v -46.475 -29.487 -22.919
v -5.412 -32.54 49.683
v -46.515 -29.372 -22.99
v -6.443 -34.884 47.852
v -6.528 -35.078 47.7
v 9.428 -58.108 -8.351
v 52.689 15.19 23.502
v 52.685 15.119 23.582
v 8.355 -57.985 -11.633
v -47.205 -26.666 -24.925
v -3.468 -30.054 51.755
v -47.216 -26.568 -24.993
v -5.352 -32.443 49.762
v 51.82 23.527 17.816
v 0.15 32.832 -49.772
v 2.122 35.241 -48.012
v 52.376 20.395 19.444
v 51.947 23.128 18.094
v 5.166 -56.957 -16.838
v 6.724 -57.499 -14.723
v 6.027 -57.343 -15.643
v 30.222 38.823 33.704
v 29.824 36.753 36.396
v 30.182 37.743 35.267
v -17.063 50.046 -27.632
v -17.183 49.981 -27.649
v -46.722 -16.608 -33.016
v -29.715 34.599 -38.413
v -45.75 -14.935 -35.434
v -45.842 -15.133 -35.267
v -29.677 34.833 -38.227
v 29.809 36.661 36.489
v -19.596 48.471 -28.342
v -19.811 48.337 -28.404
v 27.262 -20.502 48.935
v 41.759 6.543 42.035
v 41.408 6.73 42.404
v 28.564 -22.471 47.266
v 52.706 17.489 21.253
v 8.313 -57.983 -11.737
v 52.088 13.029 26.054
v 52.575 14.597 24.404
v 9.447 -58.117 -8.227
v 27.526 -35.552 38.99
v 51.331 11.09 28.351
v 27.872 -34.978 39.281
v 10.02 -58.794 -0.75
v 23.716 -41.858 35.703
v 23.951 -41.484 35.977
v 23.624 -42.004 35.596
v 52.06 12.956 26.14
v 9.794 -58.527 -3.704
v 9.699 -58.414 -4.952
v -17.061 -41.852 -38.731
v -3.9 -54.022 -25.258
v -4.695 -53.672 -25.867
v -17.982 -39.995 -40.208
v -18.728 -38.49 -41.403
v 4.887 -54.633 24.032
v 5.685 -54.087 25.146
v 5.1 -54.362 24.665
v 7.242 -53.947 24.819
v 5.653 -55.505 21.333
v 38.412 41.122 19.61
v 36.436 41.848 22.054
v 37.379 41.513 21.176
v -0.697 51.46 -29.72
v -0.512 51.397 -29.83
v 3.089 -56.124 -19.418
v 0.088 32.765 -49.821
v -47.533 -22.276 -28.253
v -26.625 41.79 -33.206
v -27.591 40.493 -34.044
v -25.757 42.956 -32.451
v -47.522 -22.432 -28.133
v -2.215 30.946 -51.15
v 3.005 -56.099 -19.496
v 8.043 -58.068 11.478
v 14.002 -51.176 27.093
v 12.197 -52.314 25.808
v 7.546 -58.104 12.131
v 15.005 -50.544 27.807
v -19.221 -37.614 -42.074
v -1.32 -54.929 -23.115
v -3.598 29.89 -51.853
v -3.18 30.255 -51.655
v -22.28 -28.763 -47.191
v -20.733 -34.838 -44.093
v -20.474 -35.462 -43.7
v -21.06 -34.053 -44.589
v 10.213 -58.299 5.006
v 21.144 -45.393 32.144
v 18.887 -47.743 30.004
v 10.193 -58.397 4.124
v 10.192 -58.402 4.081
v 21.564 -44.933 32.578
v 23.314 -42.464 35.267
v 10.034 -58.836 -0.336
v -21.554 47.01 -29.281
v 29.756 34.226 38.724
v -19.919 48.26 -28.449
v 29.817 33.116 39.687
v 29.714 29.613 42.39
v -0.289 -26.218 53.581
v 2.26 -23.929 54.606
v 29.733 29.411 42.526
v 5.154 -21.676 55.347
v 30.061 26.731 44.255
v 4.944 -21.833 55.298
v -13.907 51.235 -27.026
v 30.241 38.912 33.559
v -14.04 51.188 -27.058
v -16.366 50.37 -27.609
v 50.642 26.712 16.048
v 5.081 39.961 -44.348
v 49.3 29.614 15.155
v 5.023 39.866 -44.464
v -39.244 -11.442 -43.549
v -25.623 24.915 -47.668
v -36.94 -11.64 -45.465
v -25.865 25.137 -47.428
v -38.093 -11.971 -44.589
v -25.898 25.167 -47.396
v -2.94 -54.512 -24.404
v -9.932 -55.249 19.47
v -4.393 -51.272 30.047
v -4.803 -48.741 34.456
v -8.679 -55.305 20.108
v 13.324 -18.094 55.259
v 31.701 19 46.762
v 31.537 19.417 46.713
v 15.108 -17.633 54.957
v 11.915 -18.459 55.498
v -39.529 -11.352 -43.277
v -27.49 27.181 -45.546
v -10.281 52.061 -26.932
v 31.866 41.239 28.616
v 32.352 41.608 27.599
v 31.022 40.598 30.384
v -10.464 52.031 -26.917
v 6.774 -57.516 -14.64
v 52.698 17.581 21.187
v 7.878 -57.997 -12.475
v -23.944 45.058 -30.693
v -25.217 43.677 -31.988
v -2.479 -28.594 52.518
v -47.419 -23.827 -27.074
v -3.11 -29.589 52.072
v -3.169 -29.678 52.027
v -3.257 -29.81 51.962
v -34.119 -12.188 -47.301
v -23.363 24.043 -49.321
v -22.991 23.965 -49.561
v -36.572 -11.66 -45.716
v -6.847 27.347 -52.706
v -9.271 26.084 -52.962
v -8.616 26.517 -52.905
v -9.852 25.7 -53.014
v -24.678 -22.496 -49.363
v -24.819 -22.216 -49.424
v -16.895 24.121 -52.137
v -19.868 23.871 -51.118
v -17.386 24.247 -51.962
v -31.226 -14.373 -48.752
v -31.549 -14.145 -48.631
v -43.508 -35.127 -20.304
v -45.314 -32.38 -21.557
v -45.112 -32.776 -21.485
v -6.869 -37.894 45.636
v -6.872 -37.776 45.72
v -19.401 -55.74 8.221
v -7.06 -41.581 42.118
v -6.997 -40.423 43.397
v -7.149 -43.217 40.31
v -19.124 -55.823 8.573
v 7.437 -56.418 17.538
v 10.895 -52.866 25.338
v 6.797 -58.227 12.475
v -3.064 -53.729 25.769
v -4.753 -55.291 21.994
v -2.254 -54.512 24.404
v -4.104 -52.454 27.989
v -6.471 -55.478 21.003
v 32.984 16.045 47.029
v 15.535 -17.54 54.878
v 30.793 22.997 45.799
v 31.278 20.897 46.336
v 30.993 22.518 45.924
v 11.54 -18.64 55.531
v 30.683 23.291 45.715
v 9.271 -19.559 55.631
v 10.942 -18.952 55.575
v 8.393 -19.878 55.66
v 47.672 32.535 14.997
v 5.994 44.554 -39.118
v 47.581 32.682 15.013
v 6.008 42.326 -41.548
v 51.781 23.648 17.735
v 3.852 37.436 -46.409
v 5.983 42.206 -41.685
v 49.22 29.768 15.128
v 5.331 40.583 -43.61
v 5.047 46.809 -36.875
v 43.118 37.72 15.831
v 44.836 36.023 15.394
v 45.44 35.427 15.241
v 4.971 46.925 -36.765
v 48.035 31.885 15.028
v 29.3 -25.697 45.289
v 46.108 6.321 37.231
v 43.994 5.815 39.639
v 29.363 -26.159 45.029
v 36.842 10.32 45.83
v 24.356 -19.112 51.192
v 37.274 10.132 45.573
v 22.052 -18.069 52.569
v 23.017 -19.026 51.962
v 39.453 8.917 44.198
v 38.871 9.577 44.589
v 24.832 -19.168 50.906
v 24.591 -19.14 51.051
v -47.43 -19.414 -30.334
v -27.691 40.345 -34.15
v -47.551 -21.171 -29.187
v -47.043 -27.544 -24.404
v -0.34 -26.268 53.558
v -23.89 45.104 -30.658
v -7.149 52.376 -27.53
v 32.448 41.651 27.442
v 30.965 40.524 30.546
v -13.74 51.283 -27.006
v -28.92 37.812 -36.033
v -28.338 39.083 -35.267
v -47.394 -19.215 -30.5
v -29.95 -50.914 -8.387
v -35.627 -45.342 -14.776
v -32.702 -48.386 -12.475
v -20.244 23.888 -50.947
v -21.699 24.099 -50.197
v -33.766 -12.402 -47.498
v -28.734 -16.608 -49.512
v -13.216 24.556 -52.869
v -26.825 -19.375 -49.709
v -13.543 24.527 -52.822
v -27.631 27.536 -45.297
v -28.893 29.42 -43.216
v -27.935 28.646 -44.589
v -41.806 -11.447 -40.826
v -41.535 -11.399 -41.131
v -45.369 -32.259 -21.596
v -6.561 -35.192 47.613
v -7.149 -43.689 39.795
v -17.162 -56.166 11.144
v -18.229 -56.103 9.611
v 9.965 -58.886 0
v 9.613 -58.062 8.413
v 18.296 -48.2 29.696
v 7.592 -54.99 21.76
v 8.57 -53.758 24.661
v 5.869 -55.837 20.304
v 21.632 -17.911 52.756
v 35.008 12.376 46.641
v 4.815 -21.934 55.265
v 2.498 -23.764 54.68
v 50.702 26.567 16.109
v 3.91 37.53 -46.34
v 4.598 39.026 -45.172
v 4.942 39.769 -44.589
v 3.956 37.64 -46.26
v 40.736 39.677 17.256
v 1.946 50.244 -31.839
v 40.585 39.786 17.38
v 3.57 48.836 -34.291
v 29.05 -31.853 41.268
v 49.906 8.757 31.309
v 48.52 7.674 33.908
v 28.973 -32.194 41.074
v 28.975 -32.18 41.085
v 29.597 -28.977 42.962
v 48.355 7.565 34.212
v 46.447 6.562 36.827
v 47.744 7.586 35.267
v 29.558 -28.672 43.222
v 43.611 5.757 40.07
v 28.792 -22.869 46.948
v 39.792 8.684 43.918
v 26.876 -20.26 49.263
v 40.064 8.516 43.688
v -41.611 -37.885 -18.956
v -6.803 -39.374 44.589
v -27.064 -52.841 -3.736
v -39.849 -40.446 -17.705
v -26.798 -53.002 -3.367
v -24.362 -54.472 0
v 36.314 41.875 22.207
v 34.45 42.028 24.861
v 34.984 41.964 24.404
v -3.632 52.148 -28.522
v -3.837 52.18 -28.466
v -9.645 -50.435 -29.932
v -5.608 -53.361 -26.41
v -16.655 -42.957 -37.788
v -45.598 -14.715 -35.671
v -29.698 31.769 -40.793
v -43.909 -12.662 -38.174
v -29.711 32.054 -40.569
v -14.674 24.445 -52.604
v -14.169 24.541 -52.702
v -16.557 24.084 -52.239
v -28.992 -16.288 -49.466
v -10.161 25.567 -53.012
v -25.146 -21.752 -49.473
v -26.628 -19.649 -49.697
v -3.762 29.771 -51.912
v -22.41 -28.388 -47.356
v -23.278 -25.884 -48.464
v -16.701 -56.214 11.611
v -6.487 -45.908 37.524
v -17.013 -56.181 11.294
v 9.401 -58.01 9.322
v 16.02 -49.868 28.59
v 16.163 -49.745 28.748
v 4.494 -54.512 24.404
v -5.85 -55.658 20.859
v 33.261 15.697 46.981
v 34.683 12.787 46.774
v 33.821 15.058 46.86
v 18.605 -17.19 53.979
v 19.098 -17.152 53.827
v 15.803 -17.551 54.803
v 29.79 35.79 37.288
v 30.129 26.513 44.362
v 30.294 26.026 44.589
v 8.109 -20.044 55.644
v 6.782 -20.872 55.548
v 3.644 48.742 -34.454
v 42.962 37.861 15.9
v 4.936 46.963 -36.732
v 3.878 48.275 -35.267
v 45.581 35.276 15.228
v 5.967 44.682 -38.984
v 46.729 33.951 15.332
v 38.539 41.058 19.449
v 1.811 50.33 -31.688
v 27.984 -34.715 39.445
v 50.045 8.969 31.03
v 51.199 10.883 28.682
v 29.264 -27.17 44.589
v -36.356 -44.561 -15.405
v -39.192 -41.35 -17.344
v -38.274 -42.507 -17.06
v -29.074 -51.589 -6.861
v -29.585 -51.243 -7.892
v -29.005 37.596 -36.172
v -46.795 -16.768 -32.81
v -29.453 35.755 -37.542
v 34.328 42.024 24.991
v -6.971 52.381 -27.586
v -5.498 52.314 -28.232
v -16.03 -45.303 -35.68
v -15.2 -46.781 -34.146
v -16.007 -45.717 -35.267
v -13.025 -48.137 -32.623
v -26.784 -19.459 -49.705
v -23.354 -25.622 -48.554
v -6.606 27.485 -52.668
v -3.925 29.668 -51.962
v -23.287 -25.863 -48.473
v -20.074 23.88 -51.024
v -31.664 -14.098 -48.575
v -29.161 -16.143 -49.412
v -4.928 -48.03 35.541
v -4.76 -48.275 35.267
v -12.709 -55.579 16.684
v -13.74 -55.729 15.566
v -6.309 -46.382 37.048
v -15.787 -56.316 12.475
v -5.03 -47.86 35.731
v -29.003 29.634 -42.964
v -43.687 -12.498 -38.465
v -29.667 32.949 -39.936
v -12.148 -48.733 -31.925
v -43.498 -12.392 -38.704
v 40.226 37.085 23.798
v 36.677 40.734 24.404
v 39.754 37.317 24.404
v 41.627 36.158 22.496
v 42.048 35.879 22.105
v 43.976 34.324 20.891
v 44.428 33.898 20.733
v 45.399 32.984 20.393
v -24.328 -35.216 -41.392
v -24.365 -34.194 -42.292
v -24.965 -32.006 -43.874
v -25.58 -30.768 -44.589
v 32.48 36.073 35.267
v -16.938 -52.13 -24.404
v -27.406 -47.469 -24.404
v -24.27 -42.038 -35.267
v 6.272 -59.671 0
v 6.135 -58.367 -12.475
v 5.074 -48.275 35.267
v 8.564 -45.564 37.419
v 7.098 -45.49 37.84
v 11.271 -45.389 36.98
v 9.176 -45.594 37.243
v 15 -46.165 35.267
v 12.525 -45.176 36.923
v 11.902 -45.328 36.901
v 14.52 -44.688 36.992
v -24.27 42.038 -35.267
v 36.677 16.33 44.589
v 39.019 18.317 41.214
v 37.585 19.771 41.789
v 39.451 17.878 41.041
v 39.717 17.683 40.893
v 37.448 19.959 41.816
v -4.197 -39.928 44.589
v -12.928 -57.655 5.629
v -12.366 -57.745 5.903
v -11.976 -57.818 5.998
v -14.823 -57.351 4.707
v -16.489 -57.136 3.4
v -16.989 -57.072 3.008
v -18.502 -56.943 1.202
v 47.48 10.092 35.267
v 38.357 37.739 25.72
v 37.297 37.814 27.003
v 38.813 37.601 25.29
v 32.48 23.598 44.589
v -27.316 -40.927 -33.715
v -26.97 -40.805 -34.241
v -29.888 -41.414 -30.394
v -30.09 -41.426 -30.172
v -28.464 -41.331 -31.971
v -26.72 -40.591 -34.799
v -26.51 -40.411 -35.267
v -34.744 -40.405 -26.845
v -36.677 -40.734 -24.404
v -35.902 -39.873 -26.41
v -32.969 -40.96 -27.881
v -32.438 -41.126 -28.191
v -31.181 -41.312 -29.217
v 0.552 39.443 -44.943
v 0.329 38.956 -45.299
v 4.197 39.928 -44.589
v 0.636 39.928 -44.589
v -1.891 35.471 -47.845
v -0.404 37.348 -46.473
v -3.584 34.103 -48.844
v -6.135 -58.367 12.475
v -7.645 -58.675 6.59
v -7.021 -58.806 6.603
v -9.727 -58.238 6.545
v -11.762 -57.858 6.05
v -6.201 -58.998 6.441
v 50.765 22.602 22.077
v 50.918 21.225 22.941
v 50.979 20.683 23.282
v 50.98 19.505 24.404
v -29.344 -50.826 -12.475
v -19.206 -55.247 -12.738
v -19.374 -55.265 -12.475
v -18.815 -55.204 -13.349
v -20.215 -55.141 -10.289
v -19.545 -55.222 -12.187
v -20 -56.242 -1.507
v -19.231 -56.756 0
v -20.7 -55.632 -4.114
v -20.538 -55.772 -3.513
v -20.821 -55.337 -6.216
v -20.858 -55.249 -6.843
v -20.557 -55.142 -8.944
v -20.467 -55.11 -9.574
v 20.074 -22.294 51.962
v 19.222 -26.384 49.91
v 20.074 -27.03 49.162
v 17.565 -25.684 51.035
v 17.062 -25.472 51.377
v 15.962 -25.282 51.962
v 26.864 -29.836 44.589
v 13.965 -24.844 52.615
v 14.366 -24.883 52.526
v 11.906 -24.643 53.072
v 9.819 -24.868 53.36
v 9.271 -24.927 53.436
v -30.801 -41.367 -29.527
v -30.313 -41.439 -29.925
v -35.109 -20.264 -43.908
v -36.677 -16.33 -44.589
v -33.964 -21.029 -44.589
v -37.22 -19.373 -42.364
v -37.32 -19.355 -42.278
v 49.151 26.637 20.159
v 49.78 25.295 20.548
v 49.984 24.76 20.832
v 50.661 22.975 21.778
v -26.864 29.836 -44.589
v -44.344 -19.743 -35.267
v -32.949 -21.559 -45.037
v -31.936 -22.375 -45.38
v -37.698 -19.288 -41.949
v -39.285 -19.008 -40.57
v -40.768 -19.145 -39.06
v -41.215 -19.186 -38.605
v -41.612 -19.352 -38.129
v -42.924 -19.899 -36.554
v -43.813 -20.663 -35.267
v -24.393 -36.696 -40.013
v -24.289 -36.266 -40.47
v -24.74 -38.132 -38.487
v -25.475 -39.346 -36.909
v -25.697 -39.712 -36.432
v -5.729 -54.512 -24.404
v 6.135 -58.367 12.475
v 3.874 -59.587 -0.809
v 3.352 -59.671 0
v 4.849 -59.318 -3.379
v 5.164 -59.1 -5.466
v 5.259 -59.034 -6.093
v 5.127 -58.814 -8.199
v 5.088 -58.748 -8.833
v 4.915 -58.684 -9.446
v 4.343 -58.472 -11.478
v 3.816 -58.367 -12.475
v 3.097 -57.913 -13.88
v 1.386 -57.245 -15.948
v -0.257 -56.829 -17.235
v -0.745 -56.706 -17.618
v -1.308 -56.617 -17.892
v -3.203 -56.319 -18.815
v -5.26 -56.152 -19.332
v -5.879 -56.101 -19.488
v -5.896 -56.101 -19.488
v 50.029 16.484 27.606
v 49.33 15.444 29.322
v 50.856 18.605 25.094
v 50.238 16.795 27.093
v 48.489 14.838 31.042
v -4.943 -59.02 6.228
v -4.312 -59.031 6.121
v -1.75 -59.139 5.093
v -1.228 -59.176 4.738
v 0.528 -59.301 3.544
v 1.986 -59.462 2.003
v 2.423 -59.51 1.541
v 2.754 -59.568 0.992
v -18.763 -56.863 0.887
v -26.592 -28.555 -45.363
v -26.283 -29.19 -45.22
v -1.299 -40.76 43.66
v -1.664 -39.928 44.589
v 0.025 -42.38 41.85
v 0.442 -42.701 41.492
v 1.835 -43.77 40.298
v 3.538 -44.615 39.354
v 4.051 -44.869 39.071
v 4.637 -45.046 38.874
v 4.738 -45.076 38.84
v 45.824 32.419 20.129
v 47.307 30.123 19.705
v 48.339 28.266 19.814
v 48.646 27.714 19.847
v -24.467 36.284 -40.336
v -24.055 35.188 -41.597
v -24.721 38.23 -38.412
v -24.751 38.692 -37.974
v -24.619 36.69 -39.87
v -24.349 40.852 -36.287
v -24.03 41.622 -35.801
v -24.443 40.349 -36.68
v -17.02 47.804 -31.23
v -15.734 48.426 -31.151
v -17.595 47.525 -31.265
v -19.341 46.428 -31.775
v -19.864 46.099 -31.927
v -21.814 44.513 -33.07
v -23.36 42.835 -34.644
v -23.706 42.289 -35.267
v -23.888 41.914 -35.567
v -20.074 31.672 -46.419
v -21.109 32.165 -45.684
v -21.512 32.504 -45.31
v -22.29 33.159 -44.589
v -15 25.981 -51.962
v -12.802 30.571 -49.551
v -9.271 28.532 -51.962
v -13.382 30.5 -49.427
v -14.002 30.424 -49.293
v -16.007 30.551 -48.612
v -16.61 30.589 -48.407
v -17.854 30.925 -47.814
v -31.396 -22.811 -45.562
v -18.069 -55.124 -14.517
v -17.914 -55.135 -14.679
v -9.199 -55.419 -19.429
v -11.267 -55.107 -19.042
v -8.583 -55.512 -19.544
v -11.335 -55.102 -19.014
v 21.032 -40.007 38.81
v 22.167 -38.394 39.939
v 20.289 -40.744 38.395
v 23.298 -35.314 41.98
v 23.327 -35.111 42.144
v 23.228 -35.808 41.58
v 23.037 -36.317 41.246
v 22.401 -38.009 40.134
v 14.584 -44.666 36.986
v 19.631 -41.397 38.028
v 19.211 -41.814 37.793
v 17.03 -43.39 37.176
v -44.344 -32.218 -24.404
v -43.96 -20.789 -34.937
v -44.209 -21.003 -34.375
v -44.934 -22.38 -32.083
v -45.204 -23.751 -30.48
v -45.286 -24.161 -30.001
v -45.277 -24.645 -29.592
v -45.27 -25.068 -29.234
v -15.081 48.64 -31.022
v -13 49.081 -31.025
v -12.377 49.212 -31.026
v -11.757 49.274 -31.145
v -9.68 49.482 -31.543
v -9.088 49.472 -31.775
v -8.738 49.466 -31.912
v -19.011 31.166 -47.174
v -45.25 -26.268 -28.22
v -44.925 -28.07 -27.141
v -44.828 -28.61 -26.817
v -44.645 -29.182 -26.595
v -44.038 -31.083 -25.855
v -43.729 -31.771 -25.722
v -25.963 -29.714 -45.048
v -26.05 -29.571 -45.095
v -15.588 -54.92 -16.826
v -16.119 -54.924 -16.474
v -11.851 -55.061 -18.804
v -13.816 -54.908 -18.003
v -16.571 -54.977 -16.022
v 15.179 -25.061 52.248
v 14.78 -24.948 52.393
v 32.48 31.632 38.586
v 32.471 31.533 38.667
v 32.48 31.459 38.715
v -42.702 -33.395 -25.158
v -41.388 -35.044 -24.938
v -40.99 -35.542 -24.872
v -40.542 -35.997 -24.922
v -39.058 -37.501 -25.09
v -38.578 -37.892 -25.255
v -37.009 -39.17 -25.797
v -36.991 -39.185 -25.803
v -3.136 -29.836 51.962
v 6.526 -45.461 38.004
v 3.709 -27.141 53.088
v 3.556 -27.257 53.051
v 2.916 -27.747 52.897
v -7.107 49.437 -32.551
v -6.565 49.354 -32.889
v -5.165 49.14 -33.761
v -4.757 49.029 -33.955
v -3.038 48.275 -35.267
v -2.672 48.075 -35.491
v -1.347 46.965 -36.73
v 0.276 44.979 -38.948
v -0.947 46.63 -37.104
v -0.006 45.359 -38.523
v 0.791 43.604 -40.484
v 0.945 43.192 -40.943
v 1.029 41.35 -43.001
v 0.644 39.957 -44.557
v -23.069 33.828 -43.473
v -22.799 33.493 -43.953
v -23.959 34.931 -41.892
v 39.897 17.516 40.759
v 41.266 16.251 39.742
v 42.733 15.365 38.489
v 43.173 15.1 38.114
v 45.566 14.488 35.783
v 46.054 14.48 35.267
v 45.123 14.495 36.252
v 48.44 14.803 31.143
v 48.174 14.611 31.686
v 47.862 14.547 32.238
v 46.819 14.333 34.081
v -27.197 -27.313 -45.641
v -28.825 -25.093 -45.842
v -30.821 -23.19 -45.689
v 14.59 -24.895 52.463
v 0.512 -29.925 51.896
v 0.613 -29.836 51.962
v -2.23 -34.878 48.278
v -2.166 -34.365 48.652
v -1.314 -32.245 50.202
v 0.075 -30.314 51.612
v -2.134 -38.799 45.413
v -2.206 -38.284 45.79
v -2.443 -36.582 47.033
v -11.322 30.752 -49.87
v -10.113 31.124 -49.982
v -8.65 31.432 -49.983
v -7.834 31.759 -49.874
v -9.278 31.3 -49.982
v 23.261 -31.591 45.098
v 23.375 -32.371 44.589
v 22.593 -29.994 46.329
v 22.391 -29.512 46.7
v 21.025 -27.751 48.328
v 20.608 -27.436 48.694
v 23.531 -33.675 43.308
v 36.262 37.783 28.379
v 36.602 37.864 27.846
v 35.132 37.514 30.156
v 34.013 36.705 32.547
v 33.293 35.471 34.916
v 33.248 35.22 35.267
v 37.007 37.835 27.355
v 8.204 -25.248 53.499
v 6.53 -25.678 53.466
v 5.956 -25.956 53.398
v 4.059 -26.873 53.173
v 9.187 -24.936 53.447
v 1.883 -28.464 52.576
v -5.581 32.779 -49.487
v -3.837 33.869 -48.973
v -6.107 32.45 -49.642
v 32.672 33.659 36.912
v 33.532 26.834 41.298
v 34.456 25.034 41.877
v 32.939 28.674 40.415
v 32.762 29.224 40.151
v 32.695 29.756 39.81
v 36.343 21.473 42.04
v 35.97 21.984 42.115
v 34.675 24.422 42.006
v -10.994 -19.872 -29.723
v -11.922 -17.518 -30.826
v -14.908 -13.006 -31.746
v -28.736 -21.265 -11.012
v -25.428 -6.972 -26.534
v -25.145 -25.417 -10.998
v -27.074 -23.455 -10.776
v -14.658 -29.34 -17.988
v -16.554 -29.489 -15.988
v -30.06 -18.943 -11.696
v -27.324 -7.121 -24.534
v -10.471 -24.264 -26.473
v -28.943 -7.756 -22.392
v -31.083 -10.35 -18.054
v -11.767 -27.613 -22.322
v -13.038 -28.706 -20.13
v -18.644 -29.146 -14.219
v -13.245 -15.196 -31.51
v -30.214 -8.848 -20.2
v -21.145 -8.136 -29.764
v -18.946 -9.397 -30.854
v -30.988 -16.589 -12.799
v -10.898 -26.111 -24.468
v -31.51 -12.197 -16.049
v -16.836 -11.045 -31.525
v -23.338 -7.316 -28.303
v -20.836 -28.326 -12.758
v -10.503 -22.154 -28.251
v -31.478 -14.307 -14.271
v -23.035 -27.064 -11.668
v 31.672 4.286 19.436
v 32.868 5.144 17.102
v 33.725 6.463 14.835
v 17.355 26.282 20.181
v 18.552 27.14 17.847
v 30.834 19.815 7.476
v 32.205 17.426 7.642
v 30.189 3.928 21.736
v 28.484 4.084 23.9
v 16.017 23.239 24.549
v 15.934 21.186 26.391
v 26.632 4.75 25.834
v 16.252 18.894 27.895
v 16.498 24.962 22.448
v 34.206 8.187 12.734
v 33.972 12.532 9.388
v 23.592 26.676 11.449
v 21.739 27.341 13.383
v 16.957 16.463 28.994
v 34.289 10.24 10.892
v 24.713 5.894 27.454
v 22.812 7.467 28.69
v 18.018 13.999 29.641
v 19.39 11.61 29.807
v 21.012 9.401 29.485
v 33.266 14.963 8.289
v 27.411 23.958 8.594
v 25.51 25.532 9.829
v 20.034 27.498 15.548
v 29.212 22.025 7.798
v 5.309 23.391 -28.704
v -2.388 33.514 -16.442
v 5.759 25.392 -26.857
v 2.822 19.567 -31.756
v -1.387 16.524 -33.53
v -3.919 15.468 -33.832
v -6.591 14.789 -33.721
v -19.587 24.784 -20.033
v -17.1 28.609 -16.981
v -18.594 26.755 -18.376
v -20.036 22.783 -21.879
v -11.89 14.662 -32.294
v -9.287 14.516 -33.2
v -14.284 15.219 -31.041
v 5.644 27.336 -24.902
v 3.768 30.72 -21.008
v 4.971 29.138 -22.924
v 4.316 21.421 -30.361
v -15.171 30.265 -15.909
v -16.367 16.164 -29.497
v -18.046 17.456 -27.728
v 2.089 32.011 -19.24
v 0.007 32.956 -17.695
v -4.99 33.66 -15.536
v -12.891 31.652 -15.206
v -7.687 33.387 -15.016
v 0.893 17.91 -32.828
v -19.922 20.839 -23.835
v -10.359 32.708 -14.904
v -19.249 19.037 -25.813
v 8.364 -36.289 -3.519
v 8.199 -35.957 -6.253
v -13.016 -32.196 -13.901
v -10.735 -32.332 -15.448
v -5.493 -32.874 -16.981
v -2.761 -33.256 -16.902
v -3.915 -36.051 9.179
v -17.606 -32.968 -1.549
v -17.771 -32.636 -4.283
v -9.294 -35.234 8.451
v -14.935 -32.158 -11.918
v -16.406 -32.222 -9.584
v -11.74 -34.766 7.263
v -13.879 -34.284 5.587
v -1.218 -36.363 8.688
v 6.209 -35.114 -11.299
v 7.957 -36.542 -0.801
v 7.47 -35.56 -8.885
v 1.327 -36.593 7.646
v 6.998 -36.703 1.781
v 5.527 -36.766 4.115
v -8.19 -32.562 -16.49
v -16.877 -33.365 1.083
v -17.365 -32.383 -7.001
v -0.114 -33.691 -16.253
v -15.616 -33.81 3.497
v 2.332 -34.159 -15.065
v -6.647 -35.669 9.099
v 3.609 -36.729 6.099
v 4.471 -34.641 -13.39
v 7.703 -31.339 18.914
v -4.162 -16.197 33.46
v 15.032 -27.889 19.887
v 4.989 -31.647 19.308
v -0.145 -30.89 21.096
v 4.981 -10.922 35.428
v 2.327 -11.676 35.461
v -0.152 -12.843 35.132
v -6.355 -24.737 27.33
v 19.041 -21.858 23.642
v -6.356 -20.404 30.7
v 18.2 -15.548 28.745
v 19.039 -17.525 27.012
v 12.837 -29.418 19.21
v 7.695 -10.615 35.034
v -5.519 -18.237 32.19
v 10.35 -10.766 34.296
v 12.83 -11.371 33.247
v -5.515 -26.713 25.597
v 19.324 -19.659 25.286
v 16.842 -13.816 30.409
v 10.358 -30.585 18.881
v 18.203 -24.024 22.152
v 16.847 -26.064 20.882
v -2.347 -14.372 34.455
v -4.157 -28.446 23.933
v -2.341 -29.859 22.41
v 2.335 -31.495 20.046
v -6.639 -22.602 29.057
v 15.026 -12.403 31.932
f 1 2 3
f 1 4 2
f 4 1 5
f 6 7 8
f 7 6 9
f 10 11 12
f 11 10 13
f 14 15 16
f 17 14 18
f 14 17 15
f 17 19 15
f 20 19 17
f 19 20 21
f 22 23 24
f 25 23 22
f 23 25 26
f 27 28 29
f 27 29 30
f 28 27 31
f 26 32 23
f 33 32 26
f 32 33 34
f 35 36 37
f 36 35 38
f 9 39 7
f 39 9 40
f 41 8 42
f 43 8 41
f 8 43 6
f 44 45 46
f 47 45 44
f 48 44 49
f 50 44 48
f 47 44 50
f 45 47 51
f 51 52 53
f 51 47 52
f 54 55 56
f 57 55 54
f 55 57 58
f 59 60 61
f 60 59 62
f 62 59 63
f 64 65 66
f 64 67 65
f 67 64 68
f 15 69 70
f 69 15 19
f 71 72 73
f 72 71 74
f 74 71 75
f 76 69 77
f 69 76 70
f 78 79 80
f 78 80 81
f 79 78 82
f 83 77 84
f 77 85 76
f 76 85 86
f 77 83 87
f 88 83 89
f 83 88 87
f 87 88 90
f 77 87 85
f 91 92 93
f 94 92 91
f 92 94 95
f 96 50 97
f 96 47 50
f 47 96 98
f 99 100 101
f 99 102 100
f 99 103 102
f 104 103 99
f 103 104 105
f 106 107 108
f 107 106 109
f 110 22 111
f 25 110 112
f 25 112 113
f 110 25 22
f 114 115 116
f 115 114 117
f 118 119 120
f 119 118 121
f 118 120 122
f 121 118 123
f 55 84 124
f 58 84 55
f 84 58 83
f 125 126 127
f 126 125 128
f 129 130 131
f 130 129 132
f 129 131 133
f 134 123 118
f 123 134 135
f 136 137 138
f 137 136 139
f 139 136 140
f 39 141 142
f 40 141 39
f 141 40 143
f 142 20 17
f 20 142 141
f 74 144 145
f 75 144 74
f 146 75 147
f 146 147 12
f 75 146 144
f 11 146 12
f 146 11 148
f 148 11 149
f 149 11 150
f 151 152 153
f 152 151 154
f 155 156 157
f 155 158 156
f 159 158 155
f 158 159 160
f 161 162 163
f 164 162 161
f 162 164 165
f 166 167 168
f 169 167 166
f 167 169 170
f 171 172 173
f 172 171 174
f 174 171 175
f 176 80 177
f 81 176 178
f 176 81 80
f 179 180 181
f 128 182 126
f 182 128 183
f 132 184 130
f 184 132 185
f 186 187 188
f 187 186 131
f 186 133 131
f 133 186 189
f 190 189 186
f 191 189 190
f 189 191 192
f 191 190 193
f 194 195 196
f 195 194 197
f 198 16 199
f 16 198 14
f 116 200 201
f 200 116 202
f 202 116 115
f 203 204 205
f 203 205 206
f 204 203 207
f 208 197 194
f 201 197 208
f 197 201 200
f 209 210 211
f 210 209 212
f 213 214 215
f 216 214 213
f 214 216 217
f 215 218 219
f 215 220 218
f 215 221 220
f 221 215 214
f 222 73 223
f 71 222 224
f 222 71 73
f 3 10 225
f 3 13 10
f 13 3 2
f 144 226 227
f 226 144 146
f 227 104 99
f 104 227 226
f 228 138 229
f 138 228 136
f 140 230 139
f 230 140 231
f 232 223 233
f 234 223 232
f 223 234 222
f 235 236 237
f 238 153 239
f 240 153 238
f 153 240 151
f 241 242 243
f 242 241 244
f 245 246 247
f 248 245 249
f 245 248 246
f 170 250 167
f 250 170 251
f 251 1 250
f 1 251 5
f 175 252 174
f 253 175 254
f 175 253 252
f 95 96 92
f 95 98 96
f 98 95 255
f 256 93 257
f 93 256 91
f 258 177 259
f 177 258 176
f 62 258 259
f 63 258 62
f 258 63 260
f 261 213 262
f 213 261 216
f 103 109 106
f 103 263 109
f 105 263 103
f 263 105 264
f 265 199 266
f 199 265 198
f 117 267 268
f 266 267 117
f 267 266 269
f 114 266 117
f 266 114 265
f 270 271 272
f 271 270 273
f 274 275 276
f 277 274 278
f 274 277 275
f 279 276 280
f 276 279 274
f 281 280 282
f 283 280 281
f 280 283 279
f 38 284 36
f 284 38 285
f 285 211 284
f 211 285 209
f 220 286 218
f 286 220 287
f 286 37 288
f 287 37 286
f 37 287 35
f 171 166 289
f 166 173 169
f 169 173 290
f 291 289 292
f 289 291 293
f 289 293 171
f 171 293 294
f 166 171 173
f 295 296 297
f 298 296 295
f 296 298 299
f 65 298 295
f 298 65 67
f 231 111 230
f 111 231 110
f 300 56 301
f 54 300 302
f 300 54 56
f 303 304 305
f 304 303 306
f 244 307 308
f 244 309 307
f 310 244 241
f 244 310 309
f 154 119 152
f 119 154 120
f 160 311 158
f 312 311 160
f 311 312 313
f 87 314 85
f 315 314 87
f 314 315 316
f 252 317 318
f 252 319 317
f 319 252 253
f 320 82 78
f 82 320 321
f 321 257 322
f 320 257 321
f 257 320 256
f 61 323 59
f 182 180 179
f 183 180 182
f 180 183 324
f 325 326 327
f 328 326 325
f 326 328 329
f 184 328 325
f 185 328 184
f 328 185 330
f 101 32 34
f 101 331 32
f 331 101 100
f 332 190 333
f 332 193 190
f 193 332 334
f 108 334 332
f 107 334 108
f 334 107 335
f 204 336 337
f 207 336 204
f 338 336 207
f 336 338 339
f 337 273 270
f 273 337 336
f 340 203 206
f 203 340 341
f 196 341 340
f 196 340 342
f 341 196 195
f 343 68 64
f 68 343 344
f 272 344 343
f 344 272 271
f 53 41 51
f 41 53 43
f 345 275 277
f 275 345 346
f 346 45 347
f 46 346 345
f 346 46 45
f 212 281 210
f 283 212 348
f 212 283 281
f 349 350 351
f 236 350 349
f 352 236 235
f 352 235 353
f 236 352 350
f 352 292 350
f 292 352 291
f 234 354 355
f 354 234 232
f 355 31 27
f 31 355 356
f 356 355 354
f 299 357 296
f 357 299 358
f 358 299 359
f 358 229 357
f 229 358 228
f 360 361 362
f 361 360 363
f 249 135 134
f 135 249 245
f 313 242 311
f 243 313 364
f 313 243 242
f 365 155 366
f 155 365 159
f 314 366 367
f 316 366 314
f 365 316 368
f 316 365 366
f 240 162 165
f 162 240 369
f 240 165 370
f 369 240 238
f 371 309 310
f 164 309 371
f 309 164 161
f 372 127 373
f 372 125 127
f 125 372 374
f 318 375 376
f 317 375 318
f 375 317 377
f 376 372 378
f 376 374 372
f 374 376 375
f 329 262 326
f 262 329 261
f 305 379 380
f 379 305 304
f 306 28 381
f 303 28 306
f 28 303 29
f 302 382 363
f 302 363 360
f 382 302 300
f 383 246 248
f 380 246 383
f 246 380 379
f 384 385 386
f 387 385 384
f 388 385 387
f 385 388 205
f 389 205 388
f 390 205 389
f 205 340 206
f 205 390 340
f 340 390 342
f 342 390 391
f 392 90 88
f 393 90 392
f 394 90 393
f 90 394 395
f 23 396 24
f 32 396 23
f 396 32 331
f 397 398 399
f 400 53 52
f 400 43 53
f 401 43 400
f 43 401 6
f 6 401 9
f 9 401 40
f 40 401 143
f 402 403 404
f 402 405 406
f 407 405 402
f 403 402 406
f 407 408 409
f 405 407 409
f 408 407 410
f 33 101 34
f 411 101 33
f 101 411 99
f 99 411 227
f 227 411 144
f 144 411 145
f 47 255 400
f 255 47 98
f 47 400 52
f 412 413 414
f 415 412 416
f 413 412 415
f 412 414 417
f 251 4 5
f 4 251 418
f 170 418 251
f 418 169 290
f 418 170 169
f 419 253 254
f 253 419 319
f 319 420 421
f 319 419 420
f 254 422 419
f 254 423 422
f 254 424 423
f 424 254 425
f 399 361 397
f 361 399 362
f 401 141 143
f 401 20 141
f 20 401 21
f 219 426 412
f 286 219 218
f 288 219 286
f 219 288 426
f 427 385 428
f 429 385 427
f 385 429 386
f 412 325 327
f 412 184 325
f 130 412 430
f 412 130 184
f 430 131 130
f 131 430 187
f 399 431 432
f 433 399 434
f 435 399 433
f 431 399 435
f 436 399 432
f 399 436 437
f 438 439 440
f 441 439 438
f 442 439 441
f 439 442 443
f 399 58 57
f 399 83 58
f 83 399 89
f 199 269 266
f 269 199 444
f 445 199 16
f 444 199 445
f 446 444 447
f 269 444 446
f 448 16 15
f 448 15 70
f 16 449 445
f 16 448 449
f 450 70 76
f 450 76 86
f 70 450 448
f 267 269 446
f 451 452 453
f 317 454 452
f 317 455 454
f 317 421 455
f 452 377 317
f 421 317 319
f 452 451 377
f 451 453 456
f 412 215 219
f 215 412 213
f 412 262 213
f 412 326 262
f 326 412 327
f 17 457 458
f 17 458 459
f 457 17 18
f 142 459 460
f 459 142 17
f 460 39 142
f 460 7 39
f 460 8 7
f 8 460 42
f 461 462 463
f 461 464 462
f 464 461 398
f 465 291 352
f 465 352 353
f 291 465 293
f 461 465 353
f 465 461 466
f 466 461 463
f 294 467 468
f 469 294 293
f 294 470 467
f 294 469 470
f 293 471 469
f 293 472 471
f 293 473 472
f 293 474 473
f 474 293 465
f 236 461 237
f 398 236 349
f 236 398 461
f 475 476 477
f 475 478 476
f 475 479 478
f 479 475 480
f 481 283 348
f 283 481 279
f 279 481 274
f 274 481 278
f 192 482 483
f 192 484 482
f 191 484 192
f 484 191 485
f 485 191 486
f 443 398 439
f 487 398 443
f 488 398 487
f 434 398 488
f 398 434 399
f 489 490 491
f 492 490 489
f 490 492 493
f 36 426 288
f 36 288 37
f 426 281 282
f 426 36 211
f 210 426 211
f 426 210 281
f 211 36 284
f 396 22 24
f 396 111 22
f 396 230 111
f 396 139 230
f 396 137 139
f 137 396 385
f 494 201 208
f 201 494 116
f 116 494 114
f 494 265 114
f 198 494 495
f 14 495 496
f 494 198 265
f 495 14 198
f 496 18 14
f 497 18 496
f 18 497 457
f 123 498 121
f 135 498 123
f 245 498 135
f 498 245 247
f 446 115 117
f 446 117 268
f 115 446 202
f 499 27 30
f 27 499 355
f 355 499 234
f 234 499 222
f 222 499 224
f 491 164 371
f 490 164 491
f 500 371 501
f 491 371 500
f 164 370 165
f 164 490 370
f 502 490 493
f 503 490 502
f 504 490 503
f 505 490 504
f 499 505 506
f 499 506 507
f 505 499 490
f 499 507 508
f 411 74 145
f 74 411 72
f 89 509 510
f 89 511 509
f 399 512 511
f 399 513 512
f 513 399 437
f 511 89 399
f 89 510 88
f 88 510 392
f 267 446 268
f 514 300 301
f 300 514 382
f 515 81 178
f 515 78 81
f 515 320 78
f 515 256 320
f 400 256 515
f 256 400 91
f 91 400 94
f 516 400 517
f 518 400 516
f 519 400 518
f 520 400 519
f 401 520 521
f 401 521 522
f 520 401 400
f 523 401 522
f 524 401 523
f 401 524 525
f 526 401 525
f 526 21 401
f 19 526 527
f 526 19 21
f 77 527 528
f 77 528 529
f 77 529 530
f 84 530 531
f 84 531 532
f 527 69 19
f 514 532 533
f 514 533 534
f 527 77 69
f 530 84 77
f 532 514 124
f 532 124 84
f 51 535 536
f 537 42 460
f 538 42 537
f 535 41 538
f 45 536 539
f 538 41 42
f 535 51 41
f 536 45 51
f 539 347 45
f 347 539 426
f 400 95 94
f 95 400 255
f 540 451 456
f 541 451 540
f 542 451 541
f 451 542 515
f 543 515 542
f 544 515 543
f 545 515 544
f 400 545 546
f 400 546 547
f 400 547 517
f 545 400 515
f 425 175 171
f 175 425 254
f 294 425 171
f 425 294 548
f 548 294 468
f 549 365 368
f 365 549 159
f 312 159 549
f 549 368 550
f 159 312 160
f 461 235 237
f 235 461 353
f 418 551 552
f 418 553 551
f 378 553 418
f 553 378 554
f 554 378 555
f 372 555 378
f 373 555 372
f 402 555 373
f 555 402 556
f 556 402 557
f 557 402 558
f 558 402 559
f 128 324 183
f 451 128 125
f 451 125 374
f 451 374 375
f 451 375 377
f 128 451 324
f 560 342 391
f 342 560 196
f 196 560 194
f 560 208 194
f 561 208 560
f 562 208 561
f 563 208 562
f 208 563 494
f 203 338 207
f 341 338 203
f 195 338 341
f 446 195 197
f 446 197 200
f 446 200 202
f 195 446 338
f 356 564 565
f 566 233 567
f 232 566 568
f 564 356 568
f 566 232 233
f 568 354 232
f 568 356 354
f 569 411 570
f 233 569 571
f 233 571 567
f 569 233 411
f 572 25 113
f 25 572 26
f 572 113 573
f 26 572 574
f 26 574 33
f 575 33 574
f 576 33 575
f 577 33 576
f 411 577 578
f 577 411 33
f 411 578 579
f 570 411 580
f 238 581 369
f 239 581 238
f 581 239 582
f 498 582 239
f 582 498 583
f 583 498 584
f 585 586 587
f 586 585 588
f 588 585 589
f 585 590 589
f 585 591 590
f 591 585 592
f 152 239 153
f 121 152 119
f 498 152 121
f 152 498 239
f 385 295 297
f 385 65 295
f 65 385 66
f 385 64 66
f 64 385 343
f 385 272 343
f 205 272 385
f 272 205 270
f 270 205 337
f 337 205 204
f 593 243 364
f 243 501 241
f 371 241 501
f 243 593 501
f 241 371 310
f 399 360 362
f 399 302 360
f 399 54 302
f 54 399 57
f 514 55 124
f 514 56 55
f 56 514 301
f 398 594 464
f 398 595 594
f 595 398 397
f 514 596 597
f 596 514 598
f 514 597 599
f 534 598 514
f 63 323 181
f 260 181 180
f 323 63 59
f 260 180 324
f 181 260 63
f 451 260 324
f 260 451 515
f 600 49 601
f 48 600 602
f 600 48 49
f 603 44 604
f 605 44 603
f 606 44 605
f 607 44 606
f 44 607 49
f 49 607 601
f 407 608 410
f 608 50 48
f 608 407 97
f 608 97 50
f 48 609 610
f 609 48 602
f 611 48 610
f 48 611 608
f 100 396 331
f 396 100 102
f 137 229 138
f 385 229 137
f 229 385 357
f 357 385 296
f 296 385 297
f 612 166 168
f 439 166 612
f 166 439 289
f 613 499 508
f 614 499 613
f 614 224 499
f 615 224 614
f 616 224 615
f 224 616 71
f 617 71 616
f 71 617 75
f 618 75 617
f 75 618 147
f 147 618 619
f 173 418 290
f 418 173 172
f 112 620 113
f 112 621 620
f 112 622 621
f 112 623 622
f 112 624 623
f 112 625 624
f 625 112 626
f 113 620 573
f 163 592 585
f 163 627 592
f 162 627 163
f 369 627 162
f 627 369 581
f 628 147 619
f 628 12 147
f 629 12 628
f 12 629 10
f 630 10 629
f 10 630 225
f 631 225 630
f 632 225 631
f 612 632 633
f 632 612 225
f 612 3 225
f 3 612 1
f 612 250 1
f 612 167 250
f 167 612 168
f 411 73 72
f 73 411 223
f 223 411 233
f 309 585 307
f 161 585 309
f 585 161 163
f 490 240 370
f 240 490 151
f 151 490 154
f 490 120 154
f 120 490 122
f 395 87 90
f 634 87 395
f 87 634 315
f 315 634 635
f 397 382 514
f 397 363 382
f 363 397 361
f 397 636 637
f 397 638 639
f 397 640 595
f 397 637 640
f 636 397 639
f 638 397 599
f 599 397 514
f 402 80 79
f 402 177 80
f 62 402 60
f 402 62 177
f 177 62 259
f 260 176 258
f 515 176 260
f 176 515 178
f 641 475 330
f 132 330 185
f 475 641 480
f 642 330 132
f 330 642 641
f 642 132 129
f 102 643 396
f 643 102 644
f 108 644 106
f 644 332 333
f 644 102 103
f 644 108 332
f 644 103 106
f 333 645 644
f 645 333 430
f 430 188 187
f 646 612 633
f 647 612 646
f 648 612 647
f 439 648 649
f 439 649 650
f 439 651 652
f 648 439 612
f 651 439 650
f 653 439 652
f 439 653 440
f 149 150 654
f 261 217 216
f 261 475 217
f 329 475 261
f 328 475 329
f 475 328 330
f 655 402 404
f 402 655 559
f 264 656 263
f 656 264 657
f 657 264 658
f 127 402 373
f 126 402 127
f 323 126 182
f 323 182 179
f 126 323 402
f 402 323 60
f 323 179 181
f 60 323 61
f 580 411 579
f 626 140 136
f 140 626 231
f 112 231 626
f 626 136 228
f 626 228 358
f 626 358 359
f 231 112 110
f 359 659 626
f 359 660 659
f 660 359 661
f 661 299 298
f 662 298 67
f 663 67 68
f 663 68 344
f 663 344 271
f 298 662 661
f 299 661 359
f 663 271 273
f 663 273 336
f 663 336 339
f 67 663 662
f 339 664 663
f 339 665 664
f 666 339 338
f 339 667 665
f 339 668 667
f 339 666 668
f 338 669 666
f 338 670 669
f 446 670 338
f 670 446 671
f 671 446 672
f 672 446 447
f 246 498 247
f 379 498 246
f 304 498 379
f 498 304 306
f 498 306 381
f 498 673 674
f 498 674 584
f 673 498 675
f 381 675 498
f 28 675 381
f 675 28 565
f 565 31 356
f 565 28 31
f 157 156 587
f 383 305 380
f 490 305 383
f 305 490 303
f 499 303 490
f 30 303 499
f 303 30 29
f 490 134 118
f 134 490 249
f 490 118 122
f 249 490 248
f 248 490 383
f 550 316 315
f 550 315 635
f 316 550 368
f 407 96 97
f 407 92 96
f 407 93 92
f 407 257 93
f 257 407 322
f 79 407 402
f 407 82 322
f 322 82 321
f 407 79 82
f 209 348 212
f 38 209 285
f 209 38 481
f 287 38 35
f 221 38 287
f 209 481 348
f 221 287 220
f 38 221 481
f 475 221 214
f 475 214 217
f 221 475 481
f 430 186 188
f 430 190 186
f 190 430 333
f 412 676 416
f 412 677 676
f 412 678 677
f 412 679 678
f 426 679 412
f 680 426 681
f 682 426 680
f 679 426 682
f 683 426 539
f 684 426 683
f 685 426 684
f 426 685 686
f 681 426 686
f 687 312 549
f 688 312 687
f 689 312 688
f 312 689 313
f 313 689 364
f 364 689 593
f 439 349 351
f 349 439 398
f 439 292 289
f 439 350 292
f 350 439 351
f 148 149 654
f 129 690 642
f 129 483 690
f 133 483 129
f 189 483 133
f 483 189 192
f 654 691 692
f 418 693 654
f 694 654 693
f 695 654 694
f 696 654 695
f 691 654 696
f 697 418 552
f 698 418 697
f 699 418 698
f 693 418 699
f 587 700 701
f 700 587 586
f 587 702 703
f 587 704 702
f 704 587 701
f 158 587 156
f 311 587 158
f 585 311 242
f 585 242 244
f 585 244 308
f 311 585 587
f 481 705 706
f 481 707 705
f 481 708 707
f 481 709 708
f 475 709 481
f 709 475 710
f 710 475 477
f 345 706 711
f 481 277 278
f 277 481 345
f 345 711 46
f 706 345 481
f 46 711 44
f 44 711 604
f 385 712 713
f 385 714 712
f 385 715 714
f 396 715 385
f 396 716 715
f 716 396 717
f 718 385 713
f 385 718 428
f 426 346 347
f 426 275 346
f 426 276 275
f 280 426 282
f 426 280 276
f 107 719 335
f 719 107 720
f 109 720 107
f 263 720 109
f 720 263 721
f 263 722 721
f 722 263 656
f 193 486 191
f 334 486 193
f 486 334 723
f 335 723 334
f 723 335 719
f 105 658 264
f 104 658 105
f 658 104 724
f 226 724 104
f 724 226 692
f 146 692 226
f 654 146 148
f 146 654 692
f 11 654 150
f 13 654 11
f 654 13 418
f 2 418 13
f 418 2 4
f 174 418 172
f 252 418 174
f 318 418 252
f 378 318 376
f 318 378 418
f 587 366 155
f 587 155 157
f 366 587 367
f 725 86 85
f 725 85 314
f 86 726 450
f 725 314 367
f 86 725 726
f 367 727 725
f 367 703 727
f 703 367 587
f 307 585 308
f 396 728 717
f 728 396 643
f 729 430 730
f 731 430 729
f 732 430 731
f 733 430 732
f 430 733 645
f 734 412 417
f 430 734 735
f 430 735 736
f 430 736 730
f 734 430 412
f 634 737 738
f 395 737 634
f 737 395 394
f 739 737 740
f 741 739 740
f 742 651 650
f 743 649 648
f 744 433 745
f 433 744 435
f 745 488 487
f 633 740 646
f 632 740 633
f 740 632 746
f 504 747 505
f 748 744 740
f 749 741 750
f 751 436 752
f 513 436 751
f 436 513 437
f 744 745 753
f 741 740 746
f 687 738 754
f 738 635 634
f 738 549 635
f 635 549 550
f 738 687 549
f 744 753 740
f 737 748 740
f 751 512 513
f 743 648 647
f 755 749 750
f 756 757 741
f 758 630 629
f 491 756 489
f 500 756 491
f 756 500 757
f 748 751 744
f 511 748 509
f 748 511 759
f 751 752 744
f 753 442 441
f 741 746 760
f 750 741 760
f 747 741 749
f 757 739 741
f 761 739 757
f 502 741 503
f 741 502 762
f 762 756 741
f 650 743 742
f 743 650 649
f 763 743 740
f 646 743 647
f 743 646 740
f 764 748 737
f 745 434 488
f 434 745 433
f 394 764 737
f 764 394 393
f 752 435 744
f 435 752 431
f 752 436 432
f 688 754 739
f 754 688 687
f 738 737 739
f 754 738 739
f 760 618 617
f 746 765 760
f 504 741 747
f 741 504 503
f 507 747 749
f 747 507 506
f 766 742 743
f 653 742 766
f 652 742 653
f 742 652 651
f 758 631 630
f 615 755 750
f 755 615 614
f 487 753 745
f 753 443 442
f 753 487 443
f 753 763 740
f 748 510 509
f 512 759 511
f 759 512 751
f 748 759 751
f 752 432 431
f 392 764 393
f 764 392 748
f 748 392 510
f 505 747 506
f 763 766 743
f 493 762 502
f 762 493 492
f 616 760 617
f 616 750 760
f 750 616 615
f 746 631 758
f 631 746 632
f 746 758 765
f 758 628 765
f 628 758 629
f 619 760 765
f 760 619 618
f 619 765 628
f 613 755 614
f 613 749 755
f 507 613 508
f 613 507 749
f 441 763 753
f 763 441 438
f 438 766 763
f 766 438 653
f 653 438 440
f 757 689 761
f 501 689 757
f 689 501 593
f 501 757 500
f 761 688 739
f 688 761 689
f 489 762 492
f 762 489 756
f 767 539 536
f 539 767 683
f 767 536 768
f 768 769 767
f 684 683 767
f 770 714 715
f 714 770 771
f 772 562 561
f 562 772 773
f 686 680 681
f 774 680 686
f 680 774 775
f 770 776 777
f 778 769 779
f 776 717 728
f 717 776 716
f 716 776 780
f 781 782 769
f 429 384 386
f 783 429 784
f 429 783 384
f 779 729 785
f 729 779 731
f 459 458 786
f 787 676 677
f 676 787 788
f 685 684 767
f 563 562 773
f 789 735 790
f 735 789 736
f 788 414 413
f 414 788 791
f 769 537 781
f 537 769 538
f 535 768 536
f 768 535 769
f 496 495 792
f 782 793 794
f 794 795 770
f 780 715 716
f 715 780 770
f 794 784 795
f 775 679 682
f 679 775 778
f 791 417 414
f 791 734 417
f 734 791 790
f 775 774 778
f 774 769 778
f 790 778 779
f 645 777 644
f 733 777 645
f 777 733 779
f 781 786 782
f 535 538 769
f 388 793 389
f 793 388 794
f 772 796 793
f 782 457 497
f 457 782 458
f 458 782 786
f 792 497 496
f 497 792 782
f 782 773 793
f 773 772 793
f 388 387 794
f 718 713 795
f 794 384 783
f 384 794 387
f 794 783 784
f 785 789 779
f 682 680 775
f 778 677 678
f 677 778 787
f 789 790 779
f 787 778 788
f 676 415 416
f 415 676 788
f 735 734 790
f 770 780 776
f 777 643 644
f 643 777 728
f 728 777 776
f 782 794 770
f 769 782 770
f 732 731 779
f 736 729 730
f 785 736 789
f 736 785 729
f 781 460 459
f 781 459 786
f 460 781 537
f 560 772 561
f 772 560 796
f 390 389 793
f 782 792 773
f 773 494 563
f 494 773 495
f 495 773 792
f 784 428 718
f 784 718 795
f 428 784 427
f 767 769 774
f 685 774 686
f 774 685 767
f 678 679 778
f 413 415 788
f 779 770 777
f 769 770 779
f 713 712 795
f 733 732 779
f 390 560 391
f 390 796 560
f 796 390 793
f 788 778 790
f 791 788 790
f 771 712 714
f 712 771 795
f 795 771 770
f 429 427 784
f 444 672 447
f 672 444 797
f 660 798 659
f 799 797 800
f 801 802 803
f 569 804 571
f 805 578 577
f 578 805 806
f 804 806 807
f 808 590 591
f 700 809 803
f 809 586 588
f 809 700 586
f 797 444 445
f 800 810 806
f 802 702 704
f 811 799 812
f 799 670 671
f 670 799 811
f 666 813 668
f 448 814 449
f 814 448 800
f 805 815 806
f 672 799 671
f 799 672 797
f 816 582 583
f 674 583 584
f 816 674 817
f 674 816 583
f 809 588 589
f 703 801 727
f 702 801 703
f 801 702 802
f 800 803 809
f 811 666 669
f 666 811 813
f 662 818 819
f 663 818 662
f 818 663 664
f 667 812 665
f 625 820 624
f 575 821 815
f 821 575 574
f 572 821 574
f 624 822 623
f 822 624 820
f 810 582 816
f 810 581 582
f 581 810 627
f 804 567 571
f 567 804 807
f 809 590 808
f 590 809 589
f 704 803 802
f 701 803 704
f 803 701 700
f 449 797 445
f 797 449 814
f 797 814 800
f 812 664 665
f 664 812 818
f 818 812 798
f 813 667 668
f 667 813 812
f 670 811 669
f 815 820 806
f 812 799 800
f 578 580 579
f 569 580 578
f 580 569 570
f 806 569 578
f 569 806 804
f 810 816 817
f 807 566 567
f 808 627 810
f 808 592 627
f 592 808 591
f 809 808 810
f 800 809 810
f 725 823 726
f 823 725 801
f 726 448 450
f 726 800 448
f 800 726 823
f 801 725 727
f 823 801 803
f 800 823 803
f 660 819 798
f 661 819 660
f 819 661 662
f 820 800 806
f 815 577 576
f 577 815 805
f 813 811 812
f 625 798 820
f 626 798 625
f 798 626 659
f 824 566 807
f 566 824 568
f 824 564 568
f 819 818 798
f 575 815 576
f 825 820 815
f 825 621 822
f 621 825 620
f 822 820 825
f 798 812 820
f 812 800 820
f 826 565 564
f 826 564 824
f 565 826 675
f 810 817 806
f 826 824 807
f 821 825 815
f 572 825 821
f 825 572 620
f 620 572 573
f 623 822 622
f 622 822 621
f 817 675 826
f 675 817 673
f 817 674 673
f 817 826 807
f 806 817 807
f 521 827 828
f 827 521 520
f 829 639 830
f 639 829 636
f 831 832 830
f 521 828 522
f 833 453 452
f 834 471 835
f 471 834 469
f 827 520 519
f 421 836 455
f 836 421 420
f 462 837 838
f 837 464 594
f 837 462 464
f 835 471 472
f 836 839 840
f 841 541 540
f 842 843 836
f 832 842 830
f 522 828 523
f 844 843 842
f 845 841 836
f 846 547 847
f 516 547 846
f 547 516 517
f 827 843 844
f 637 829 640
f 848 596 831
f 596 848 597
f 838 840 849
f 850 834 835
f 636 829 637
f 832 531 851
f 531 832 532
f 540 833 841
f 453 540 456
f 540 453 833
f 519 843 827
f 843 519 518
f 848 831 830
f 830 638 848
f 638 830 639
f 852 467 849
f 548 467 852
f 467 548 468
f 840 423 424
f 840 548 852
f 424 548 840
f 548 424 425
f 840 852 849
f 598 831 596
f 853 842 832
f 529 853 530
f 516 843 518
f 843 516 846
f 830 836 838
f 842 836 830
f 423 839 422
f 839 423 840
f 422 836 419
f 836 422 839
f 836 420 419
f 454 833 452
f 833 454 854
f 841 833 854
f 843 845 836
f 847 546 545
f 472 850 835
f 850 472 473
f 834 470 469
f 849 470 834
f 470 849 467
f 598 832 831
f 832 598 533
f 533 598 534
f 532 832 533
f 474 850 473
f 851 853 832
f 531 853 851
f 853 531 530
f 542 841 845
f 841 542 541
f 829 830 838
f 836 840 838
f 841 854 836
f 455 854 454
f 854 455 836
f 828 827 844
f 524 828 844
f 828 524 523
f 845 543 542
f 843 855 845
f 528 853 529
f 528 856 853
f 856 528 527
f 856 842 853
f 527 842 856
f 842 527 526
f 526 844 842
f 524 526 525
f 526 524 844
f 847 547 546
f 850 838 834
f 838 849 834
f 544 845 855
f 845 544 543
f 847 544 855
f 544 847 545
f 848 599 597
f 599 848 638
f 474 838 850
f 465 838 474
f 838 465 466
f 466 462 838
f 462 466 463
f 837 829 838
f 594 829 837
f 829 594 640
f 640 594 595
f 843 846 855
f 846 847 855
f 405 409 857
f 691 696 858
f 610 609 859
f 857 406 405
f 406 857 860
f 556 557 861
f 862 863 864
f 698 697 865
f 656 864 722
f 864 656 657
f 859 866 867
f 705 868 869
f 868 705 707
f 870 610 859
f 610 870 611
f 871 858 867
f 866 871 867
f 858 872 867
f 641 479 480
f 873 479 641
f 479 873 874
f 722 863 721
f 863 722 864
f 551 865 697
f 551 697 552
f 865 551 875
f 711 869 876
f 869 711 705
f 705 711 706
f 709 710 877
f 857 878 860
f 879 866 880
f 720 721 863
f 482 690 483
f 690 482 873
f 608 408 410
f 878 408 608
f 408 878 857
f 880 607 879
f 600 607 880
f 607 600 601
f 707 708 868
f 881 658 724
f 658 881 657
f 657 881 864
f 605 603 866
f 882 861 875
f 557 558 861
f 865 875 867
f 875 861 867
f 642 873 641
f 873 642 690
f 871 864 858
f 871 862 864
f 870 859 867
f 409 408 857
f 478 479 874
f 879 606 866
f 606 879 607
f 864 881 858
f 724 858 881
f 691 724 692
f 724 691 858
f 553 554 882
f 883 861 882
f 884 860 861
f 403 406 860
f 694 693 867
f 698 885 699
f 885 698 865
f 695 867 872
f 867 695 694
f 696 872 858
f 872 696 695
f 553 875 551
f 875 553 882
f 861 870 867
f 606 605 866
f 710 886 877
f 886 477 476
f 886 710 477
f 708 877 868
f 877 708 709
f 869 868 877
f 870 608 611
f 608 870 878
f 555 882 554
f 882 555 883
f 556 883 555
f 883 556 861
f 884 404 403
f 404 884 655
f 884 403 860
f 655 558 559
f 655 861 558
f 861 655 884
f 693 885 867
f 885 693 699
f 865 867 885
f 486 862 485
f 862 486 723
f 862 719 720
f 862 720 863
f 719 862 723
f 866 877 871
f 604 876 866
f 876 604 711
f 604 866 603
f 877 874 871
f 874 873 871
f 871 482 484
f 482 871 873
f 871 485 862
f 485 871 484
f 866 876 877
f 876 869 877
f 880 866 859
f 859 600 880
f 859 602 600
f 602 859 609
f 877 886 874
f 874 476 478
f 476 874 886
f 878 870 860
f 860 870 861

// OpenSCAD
difference() {
	intersection() {
		hull() {
			rotate(a = -131.8845294379, v = [0.7438807757, -0.0301578267, 0.0000000000]) {
				rotate(a = -90.0000000000, v = [0.8386856561, 0.5446158005, -0.0000000000]) {
					cylinder(h = 60, r = 16.2000000000);
				}
			}
			rotate(a = -131.8845294379, v = [0.7438807757, -0.0301578267, 0.0000000000]) {
				rotate(a = -90.0000000000, v = [-0.7431262878, -0.6691511939, 0.0000000000]) {
					cylinder(h = 60, r = 16.2000000000);
				}
			}
			rotate(a = -131.8845294379, v = [0.7438807757, -0.0301578267, 0.0000000000]) {
				rotate(a = -13.9195899171, v = [0.0740897871, 0.2288662946, -0.0000000000]) {
					cylinder(h = 60, r = 16.2000000000);
				}
			}
			rotate(a = -131.8845294379, v = [0.7438807757, -0.0301578267, 0.0000000000]) {
				rotate(a = -131.4597256445, v = [0.7466658594, 0.0642058116, -0.0000000000]) {
					cylinder(h = 60, r = 16.2000000000);
				}
			}
			rotate(a = -131.8845294379, v = [0.7438807757, -0.0301578267, 0.0000000000]) {
				rotate(a = -164.1406512906, v = [-0.1882972004, -0.1980514359, 0.0000000000]) {
					cylinder(h = 60, r = 16.2000000000);
				}
			}
		}
		sphere(r = 60);
	}
	union() {
		rotate(a = -131.8845294379, v = [0.7438807757, -0.0301578267, 0.0000000000]) {
			rotate(a = -90.0000000000, v = [0.8386856561, 0.5446158005, -0.0000000000]) {
				translate(v = [0, 0, 35]) {
					cylinder(h = 100, r = 13.2000000000);
				}
			}
		}
		rotate(a = -131.8845294379, v = [0.7438807757, -0.0301578267, 0.0000000000]) {
			rotate(a = -90.0000000000, v = [-0.7431262878, -0.6691511939, 0.0000000000]) {
				translate(v = [0, 0, 35]) {
					cylinder(h = 100, r = 13.2000000000);
				}
			}
		}
		rotate(a = -131.8845294379, v = [0.7438807757, -0.0301578267, 0.0000000000]) {
			rotate(a = -13.9195899171, v = [0.0740897871, 0.2288662946, -0.0000000000]) {
				translate(v = [0, 0, 35]) {
					cylinder(h = 100, r = 13.2000000000);
				}
			}
		}
		rotate(a = -131.8845294379, v = [0.7438807757, -0.0301578267, 0.0000000000]) {
			rotate(a = -131.4597256445, v = [0.7466658594, 0.0642058116, -0.0000000000]) {
				translate(v = [0, 0, 35]) {
					cylinder(h = 100, r = 13.2000000000);
				}
			}
		}
		rotate(a = -131.8845294379, v = [0.7438807757, -0.0301578267, 0.0000000000]) {
			rotate(a = -164.1406512906, v = [-0.1882972004, -0.1980514359, 0.0000000000]) {
				translate(v = [0, 0, 35]) {
					cylinder(h = 100, r = 13.2000000000);
				}
			}
		}
	}
}
